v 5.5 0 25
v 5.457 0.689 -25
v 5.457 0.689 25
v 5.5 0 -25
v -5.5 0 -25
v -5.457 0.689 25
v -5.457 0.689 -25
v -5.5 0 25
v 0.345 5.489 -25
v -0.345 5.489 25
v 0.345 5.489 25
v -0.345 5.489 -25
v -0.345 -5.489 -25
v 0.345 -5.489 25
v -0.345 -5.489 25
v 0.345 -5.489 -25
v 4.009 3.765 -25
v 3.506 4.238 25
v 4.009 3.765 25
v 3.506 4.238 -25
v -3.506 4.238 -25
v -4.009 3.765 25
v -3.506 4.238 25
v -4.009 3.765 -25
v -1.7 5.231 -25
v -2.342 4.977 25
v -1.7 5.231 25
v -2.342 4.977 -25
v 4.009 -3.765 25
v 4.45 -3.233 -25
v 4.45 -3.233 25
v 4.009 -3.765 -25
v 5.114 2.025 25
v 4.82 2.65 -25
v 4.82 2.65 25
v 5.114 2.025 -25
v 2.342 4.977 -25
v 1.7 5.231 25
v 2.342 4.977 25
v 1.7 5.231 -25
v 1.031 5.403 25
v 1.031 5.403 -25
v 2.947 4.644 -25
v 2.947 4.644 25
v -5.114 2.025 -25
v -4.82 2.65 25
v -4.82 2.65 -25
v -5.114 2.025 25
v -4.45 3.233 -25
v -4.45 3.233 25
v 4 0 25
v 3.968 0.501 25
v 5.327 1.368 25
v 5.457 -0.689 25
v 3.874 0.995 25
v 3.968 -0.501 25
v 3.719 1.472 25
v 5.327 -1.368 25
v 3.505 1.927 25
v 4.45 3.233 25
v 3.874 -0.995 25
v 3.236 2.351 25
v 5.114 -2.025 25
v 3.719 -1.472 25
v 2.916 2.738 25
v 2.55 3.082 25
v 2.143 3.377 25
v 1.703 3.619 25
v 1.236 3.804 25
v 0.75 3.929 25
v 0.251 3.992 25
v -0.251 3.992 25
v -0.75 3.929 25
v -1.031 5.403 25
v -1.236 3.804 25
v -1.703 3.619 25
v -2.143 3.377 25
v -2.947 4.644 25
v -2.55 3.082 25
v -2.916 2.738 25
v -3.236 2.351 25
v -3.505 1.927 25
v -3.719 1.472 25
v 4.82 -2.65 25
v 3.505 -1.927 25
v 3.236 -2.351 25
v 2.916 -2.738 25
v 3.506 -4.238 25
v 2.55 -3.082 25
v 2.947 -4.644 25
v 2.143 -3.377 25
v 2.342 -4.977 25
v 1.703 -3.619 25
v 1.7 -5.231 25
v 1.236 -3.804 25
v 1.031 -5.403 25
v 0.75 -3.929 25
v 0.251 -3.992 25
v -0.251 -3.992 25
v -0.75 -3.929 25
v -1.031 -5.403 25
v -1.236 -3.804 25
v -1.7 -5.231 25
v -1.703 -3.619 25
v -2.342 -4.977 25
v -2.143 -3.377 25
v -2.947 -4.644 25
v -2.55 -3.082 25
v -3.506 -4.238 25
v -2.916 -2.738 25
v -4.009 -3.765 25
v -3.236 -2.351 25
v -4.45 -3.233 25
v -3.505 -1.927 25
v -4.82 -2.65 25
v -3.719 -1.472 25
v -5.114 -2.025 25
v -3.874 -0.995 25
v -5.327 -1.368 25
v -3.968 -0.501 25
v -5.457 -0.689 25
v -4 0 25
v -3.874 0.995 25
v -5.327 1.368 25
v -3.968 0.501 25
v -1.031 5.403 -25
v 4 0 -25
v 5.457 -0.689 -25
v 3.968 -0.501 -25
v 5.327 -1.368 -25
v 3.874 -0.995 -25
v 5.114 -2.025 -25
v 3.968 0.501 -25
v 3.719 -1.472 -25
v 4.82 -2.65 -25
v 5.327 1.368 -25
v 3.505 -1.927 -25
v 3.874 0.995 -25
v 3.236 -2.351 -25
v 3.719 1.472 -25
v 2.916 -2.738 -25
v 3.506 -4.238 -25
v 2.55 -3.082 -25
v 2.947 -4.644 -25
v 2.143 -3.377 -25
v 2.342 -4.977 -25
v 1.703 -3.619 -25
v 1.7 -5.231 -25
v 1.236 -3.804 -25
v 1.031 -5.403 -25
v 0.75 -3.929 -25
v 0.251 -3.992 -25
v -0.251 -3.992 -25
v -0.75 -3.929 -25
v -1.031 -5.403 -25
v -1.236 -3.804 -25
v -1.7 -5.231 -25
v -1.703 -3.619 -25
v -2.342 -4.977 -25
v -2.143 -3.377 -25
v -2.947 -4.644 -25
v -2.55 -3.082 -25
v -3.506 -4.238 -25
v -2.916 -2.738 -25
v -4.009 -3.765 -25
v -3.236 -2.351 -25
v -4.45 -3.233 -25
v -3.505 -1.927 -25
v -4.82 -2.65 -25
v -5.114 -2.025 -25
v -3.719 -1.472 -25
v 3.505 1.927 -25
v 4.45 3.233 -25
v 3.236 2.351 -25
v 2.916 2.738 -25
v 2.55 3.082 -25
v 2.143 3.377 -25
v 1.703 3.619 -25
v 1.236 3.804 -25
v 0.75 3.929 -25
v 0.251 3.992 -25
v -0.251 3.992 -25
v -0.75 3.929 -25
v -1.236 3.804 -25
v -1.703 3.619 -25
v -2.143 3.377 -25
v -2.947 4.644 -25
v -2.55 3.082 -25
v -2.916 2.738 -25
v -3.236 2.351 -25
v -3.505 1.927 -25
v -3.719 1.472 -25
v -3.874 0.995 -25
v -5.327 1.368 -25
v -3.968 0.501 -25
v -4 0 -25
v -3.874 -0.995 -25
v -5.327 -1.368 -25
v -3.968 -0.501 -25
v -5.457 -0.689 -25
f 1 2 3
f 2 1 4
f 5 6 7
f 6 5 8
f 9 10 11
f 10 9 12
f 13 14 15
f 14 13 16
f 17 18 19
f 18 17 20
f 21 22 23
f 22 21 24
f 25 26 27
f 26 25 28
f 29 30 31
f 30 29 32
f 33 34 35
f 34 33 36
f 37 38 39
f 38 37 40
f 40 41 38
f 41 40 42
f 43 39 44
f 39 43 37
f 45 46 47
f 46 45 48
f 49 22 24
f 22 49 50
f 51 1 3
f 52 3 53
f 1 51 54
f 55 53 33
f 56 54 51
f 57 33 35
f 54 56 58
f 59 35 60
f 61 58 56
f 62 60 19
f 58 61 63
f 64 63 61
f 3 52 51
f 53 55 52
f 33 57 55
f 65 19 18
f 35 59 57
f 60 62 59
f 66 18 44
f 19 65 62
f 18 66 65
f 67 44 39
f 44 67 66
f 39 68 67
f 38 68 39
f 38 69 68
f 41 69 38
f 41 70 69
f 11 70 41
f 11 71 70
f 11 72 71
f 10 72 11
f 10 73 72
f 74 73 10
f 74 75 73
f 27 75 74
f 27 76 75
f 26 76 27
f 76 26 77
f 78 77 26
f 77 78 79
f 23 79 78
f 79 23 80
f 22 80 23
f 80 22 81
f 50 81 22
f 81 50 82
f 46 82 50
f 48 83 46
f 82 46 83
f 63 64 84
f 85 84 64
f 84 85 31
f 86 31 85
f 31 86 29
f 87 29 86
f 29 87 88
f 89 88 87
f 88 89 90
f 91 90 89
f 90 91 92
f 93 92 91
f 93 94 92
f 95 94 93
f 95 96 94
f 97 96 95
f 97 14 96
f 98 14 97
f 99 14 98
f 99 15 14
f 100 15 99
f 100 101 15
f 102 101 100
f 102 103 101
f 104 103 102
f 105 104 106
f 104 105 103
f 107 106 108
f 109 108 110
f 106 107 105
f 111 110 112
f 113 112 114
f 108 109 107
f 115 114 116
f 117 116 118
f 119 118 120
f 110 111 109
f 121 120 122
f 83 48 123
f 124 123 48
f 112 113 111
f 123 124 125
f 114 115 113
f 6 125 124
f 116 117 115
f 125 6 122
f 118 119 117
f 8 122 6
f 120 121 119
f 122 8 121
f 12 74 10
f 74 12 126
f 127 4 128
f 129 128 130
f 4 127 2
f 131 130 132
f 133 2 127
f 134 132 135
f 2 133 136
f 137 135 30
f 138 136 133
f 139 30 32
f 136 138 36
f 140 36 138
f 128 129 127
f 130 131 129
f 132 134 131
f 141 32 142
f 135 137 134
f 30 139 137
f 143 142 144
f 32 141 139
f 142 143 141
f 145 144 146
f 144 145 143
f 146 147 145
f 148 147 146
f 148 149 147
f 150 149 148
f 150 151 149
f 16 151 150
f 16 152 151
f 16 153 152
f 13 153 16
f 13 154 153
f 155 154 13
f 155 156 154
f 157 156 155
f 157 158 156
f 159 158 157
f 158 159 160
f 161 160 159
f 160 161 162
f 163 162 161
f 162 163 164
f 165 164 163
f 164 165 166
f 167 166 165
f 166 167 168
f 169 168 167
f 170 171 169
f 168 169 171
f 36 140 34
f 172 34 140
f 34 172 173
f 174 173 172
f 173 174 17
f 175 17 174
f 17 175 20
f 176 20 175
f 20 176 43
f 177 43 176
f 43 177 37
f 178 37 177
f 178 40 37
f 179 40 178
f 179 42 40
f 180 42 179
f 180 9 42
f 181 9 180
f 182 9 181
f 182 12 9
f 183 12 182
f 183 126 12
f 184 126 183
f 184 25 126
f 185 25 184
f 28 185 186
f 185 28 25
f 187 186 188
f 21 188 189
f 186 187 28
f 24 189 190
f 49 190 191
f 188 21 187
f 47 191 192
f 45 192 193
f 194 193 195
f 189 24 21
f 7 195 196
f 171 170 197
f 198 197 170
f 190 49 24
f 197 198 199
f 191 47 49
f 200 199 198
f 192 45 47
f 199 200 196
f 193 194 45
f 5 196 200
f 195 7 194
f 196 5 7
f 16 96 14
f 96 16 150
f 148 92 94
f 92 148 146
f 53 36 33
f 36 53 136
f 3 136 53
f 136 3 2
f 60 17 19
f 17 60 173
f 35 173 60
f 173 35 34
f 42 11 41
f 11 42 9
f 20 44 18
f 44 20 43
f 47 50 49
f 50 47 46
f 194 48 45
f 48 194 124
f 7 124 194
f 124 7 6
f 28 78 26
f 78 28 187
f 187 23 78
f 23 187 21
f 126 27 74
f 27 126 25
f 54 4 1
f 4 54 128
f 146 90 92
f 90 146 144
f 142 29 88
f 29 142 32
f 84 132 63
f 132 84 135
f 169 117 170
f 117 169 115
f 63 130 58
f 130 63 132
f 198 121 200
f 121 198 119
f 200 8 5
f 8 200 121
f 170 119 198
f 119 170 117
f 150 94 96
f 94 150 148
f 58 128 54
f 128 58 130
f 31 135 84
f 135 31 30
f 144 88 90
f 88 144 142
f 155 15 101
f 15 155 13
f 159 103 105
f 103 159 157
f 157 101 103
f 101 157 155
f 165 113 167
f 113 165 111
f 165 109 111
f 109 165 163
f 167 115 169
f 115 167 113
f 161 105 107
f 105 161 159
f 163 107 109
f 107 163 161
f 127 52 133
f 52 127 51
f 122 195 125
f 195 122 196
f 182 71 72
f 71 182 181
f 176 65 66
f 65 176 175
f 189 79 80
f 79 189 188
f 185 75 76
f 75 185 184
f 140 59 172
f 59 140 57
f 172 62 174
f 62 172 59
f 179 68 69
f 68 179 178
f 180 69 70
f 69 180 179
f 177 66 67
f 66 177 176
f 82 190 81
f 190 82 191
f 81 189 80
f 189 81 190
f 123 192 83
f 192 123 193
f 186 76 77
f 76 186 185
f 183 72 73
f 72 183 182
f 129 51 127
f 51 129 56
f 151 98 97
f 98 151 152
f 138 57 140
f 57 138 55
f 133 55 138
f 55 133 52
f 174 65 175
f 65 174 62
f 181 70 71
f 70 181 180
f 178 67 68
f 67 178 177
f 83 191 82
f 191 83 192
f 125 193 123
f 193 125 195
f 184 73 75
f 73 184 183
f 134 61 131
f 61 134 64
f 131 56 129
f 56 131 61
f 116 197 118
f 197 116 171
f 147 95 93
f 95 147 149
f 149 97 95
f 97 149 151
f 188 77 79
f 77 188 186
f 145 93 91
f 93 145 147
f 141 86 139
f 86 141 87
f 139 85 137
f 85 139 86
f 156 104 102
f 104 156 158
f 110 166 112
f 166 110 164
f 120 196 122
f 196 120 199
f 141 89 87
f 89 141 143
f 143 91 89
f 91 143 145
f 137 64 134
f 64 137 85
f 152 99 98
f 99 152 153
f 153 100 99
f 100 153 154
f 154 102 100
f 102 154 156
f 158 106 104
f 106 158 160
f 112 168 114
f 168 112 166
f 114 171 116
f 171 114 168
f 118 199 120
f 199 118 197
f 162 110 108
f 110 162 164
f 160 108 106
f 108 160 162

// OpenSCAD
$fn = 50;


difference() {
	union() {
		translate(v = [0, 0, -25.0000000000]) {
			cylinder(h = 50, r = 5.5000000000);
		}
	}
	union() {
		translate(v = [0, 0, -100.0000000000]) {
			cylinder(h = 200, r = 4);
		}
	}
}
